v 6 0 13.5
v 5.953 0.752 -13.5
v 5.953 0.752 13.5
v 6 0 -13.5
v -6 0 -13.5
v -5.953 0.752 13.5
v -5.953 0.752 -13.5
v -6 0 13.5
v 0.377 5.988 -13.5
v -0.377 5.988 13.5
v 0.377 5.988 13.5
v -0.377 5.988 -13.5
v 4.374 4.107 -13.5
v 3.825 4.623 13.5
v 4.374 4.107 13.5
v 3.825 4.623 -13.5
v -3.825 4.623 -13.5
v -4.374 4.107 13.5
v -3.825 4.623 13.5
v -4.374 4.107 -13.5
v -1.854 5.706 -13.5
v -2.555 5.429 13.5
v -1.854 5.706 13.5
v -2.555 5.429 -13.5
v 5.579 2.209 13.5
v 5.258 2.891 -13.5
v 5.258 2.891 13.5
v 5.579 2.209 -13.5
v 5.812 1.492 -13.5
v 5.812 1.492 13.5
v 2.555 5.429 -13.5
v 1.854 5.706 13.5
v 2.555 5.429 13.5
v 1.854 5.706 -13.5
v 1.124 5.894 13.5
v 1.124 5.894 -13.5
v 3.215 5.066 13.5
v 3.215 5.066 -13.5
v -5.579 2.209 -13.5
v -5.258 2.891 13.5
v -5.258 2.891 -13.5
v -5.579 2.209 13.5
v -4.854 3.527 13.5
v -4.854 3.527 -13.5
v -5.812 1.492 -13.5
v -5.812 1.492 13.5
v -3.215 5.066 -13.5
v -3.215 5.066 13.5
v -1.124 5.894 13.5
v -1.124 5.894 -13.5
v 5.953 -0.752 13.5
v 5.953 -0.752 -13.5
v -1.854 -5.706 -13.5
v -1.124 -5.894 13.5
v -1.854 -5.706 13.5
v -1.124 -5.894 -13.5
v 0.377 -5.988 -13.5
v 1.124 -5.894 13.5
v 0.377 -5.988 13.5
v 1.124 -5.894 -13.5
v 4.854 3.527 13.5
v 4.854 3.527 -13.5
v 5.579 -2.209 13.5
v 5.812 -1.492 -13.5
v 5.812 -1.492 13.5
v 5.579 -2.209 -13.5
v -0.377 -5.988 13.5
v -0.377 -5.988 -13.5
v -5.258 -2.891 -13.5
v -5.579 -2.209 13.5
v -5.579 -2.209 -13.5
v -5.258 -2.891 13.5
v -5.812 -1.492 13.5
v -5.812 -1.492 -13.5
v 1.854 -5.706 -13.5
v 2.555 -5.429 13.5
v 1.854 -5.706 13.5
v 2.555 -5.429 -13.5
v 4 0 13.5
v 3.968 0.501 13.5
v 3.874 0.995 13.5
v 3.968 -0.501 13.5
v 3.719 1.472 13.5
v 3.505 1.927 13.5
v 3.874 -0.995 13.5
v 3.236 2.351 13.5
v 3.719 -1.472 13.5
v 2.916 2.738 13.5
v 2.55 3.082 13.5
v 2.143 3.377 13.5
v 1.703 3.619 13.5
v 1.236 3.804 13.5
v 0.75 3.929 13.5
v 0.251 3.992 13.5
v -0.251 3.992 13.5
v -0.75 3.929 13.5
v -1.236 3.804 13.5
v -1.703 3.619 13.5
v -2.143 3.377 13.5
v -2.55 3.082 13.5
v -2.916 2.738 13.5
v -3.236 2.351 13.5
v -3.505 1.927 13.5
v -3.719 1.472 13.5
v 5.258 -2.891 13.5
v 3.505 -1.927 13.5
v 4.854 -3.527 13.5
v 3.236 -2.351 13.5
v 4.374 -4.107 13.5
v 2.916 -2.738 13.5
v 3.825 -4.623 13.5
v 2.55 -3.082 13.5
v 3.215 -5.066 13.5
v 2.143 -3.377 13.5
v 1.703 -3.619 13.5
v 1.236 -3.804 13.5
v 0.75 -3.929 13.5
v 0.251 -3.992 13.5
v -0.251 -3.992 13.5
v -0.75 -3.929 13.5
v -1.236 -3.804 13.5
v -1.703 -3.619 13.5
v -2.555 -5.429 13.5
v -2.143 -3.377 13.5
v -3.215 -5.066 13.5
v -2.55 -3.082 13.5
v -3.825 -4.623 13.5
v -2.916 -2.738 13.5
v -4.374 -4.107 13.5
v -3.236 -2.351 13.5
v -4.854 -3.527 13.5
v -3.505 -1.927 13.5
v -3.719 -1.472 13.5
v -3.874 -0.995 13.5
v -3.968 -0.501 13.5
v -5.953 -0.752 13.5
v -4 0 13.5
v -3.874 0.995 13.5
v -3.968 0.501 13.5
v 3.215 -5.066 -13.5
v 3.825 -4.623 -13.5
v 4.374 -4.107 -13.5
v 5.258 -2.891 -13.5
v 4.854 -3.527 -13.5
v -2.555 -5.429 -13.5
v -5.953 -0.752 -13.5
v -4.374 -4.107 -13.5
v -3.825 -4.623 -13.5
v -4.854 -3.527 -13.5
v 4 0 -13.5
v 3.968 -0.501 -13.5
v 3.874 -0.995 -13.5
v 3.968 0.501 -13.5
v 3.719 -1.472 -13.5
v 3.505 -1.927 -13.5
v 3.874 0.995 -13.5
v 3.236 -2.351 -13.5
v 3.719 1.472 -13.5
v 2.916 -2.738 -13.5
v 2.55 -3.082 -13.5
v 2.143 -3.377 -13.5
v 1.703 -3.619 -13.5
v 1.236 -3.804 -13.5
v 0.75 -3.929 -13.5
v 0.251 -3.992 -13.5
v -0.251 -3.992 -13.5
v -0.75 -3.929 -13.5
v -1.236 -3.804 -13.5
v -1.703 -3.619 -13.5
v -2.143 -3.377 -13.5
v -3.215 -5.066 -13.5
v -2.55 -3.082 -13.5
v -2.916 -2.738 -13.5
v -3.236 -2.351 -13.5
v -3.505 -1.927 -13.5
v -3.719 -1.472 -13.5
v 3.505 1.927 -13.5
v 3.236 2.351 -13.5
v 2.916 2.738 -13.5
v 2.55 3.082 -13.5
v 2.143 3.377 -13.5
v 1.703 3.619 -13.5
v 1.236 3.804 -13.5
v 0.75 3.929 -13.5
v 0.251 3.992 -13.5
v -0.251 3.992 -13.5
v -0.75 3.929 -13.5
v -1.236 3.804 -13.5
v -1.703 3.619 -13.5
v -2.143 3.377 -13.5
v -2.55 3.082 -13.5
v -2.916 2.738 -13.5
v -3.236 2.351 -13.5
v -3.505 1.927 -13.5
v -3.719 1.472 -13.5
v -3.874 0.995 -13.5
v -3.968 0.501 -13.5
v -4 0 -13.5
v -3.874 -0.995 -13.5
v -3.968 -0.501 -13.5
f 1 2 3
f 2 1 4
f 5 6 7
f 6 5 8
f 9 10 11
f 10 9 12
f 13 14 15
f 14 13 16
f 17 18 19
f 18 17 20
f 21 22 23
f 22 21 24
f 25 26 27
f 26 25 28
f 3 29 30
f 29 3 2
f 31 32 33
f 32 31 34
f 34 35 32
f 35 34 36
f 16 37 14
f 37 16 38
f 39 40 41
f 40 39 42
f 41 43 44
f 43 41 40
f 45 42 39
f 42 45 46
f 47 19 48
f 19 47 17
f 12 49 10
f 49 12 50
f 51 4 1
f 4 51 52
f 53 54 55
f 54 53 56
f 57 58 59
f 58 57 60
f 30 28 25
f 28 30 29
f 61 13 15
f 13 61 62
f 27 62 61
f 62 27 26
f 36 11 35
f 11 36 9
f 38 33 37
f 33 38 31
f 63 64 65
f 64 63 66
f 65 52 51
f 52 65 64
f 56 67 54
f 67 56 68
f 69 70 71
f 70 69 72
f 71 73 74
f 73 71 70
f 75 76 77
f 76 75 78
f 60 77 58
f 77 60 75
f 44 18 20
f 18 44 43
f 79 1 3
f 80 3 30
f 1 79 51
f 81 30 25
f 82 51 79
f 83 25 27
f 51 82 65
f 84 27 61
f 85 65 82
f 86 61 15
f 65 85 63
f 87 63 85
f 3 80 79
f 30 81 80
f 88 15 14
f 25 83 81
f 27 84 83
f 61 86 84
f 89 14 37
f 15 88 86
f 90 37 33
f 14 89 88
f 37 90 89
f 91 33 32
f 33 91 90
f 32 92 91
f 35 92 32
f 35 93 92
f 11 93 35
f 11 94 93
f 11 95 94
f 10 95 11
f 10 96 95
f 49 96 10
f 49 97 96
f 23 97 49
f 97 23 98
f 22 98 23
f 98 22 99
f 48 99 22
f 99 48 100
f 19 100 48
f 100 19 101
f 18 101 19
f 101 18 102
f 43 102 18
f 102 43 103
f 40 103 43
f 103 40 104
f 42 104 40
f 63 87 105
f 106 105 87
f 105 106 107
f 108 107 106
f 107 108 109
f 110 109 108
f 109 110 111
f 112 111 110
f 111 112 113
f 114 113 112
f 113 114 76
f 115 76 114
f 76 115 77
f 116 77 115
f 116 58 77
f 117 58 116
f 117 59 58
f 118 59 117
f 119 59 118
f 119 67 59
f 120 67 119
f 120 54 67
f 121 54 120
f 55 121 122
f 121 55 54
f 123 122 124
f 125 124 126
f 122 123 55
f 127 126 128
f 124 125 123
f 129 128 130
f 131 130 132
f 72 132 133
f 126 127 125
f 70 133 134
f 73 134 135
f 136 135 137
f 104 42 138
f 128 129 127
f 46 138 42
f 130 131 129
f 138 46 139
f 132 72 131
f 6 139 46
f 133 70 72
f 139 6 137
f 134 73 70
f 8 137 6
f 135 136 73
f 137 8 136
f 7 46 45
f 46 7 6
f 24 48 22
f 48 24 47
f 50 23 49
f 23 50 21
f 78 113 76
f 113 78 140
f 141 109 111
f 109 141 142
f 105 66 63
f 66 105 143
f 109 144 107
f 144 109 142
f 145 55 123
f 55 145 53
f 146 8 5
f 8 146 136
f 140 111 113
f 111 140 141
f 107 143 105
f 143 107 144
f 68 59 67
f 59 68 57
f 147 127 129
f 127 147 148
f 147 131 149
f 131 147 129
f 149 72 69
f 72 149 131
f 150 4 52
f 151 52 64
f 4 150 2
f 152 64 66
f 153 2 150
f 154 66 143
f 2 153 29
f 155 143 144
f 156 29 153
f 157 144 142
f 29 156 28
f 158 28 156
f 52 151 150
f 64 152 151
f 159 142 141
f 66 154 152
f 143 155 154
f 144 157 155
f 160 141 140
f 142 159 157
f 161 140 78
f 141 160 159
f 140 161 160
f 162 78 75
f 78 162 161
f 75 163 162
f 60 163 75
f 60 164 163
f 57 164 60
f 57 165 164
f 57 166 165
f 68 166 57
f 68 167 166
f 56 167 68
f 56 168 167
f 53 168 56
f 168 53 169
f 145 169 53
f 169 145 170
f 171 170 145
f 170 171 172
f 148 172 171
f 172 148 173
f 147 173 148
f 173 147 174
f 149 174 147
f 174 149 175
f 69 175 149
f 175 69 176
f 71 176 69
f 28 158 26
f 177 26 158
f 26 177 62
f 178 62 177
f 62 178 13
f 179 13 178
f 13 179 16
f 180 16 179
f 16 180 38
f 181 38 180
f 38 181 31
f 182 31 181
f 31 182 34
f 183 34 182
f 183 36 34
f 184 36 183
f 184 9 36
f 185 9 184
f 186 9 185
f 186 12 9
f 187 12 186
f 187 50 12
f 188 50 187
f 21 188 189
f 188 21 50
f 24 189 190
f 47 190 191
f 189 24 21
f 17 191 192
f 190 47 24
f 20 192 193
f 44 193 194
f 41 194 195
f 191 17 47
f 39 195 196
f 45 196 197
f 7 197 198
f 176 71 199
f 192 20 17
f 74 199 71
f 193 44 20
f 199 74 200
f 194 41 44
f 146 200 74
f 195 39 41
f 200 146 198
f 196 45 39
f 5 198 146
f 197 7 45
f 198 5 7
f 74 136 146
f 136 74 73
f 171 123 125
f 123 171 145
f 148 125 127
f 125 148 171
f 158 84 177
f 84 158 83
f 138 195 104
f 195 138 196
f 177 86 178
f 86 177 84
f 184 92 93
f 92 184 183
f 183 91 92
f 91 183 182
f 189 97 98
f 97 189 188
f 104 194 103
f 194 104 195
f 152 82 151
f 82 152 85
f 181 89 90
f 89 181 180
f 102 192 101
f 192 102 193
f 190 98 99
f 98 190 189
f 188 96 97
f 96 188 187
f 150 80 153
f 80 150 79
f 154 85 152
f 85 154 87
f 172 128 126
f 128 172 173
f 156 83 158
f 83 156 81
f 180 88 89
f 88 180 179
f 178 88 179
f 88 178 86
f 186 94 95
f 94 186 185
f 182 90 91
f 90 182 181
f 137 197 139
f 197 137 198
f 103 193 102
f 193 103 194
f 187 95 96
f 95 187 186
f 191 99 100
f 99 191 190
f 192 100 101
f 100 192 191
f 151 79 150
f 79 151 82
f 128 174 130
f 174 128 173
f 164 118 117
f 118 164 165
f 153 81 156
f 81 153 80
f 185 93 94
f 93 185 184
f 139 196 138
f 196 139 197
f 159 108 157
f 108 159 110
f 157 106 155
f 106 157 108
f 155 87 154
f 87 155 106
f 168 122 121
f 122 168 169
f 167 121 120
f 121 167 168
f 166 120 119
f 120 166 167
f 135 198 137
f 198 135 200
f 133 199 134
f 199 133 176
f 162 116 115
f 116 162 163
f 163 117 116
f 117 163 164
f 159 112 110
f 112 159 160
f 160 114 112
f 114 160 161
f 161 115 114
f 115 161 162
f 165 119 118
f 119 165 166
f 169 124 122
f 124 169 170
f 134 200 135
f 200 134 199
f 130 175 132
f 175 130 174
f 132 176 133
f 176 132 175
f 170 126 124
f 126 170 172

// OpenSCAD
$fn = 50;


difference() {
	union() {
		translate(v = [0, 0, -13.5000000000]) {
			cylinder(h = 27, r = 6.0000000000);
		}
	}
	union() {
		translate(v = [0, 0, -100.0000000000]) {
			cylinder(h = 200, r = 4.0000000000);
		}
	}
}
